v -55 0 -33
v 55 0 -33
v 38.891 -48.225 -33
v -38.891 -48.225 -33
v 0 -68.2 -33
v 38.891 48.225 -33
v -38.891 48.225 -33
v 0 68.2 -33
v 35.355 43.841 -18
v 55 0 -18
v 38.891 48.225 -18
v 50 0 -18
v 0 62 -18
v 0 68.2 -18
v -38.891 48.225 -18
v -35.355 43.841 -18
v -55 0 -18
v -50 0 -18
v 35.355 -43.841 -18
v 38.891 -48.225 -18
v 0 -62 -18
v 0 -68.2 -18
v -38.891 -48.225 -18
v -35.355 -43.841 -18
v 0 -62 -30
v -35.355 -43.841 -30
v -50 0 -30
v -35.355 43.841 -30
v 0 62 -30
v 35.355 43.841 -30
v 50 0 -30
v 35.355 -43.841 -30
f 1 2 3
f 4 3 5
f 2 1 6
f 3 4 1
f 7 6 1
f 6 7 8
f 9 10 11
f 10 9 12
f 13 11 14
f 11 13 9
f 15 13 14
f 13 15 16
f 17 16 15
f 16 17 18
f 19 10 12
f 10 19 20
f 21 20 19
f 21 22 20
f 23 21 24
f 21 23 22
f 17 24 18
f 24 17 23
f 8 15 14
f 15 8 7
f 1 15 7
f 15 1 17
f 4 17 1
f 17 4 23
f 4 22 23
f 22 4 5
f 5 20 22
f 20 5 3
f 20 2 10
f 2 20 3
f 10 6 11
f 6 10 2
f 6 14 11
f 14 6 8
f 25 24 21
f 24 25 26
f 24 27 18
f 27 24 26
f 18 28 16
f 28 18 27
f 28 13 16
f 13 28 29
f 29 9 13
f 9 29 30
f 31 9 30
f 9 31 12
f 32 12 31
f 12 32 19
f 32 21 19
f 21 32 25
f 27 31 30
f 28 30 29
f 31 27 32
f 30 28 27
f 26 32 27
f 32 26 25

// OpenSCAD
// Generated by SolidPython 1.1.3 on 2023-02-11 19:06:22


union() {
	translate(v = [0, 0, -33]) {
		linear_extrude(height = 15) {
			polygon(points = [[55.0000000000, 0.0000000000], [38.890872965260115, 48.22468247692255], [3.3677786976552217e-15, 68.2], [-38.89087296526011, 48.22468247692255], [-55.00000000000001, 8.35209117018495e-15], [-38.89087296526013, -48.224682476922546], [-1.0103336092965664e-14, -68.2], [38.89087296526011, -48.22468247692256], [55.00000000000001, -1.67041823403699e-14], [50.0, -1.518562030942718e-14], [35.35533905932737, -43.84062043356596], [-9.184850993605149e-15, -62.0], [-35.355339059327385, -43.840620433565945], [-50.0, 7.59281015471359e-15], [-35.35533905932737, 43.84062043356595], [3.061616997868383e-15, 62.0], [35.35533905932738, 43.84062043356595], [50.0000000000, 0]]);
		}
	}
	translate(v = [0, 0, -33]) {
		linear_extrude(height = 3) {
			polygon(points = [[55.0000000000, 0.0000000000], [38.890872965260115, 48.22468247692255], [3.3677786976552217e-15, 68.2], [-38.89087296526011, 48.22468247692255], [-55.00000000000001, 8.35209117018495e-15], [-38.89087296526013, -48.224682476922546], [-1.0103336092965664e-14, -68.2], [38.89087296526011, -48.22468247692256], [55.00000000000001, -1.67041823403699e-14]]);
		}
	}
}
/***********************************************
*********      SolidPython code:      **********
************************************************
 
from numpy import *
from numpy.linalg import *
from solid import *
from solid.utils import *


def create_shape():
    shape = import_stl('duck.stl')
    bx = [-50, 50]
    by = [-62, 62]
    bz = [-30, 78]
    ox = 0
    oy = -10
    return shape, (bx, by, bz), (ox, oy)


def create_mold(shape, aabb, origin, n=4, print_to_files=False):
    bx, by, bz = aabb
    dx = bx[1] - bx[0]
    dy = by[1] - by[0]
    dz = bz[1] - bz[0]
    ox = bx[0] + dx / 2
    oy = by[0] + dy / 2
    rx = dx / 2
    ry = dy / 2

    model = cube(0)
    points = [[rx, 0]]
    molds = []
    pa = 0
    for a in linspace(0, 2*pi, n + 1, endpoint=True)[1:]:
        px = rx * cos(pa)
        py = ry * sin(pa)
        qx = rx * cos(a)
        qy = ry * sin(a)
        points.append([qx, qy])

        mold_part = polygon(points=[
            origin,
            [ox + px, oy + py],
            [ox + qx, oy + qy],
        ])
        mold_part = linear_extrude(dz)(mold_part)
        mold_part = translate((0, 0, bz[0]))(mold_part)
        mold_part -= shape
        mold_part = color([1, 1, 0], 0.5)(mold_part)
        model += mold_part

        slope = atan2(qy - py, qx - px)
        o = array(origin)
        p = array((ox + px, oy + py))
        q = array((ox + qx, oy + qy))
        d = abs(cross(p - q, o - q)) / norm(p - q)
        mold_part = translate((-origin[0], -origin[1], 0))(mold_part)
        mold_part = rotate((0, 0, -slope / pi * 180))(mold_part)
        mold_part = translate((0, d, -dz - bz[0]))(mold_part)
        mold_part = rotate((90, 0, 0))(mold_part)

        molds.append(mold_part)
        pa = a

    if print_to_files and False:
        import pathlib
        pathlib.Path('molds').mkdir(exist_ok=True)
        for i, mold in enumerate(molds):
            scad_render_to_file(mold, f"mold-{i + 1}.scad")

    def sc(points, scale):
        return [[p[0]*scale, p[1]*scale] for p in points]
    scaffold = polygon(points=sc(points, 1.1) + sc(points[::-1], 1))
    scaffold_bottom = polygon(points=sc(points, 1.1))
    scaffold = linear_extrude(15)(scaffold)
    scaffold_bottom = linear_extrude(3)(scaffold_bottom)
    scaffold = translate((0, 0, bz[0] - 3))(scaffold)
    scaffold_bottom = translate((0, 0, bz[0] - 3))(scaffold_bottom)
    scaffold += scaffold_bottom

    if print_to_files:
        import pathlib
        pathlib.Path('molds').mkdir(exist_ok=True)
        scad_render_to_file(scaffold, "mold-scaffold.scad")
    model += scaffold

    return model, molds


shape, aabb, origin = create_shape()
model, _ = create_mold(shape, aabb, origin, n=8, print_to_files=True)

scad_render_to_file(shape + model, 'mold.scad')
 
 
************************************************/
